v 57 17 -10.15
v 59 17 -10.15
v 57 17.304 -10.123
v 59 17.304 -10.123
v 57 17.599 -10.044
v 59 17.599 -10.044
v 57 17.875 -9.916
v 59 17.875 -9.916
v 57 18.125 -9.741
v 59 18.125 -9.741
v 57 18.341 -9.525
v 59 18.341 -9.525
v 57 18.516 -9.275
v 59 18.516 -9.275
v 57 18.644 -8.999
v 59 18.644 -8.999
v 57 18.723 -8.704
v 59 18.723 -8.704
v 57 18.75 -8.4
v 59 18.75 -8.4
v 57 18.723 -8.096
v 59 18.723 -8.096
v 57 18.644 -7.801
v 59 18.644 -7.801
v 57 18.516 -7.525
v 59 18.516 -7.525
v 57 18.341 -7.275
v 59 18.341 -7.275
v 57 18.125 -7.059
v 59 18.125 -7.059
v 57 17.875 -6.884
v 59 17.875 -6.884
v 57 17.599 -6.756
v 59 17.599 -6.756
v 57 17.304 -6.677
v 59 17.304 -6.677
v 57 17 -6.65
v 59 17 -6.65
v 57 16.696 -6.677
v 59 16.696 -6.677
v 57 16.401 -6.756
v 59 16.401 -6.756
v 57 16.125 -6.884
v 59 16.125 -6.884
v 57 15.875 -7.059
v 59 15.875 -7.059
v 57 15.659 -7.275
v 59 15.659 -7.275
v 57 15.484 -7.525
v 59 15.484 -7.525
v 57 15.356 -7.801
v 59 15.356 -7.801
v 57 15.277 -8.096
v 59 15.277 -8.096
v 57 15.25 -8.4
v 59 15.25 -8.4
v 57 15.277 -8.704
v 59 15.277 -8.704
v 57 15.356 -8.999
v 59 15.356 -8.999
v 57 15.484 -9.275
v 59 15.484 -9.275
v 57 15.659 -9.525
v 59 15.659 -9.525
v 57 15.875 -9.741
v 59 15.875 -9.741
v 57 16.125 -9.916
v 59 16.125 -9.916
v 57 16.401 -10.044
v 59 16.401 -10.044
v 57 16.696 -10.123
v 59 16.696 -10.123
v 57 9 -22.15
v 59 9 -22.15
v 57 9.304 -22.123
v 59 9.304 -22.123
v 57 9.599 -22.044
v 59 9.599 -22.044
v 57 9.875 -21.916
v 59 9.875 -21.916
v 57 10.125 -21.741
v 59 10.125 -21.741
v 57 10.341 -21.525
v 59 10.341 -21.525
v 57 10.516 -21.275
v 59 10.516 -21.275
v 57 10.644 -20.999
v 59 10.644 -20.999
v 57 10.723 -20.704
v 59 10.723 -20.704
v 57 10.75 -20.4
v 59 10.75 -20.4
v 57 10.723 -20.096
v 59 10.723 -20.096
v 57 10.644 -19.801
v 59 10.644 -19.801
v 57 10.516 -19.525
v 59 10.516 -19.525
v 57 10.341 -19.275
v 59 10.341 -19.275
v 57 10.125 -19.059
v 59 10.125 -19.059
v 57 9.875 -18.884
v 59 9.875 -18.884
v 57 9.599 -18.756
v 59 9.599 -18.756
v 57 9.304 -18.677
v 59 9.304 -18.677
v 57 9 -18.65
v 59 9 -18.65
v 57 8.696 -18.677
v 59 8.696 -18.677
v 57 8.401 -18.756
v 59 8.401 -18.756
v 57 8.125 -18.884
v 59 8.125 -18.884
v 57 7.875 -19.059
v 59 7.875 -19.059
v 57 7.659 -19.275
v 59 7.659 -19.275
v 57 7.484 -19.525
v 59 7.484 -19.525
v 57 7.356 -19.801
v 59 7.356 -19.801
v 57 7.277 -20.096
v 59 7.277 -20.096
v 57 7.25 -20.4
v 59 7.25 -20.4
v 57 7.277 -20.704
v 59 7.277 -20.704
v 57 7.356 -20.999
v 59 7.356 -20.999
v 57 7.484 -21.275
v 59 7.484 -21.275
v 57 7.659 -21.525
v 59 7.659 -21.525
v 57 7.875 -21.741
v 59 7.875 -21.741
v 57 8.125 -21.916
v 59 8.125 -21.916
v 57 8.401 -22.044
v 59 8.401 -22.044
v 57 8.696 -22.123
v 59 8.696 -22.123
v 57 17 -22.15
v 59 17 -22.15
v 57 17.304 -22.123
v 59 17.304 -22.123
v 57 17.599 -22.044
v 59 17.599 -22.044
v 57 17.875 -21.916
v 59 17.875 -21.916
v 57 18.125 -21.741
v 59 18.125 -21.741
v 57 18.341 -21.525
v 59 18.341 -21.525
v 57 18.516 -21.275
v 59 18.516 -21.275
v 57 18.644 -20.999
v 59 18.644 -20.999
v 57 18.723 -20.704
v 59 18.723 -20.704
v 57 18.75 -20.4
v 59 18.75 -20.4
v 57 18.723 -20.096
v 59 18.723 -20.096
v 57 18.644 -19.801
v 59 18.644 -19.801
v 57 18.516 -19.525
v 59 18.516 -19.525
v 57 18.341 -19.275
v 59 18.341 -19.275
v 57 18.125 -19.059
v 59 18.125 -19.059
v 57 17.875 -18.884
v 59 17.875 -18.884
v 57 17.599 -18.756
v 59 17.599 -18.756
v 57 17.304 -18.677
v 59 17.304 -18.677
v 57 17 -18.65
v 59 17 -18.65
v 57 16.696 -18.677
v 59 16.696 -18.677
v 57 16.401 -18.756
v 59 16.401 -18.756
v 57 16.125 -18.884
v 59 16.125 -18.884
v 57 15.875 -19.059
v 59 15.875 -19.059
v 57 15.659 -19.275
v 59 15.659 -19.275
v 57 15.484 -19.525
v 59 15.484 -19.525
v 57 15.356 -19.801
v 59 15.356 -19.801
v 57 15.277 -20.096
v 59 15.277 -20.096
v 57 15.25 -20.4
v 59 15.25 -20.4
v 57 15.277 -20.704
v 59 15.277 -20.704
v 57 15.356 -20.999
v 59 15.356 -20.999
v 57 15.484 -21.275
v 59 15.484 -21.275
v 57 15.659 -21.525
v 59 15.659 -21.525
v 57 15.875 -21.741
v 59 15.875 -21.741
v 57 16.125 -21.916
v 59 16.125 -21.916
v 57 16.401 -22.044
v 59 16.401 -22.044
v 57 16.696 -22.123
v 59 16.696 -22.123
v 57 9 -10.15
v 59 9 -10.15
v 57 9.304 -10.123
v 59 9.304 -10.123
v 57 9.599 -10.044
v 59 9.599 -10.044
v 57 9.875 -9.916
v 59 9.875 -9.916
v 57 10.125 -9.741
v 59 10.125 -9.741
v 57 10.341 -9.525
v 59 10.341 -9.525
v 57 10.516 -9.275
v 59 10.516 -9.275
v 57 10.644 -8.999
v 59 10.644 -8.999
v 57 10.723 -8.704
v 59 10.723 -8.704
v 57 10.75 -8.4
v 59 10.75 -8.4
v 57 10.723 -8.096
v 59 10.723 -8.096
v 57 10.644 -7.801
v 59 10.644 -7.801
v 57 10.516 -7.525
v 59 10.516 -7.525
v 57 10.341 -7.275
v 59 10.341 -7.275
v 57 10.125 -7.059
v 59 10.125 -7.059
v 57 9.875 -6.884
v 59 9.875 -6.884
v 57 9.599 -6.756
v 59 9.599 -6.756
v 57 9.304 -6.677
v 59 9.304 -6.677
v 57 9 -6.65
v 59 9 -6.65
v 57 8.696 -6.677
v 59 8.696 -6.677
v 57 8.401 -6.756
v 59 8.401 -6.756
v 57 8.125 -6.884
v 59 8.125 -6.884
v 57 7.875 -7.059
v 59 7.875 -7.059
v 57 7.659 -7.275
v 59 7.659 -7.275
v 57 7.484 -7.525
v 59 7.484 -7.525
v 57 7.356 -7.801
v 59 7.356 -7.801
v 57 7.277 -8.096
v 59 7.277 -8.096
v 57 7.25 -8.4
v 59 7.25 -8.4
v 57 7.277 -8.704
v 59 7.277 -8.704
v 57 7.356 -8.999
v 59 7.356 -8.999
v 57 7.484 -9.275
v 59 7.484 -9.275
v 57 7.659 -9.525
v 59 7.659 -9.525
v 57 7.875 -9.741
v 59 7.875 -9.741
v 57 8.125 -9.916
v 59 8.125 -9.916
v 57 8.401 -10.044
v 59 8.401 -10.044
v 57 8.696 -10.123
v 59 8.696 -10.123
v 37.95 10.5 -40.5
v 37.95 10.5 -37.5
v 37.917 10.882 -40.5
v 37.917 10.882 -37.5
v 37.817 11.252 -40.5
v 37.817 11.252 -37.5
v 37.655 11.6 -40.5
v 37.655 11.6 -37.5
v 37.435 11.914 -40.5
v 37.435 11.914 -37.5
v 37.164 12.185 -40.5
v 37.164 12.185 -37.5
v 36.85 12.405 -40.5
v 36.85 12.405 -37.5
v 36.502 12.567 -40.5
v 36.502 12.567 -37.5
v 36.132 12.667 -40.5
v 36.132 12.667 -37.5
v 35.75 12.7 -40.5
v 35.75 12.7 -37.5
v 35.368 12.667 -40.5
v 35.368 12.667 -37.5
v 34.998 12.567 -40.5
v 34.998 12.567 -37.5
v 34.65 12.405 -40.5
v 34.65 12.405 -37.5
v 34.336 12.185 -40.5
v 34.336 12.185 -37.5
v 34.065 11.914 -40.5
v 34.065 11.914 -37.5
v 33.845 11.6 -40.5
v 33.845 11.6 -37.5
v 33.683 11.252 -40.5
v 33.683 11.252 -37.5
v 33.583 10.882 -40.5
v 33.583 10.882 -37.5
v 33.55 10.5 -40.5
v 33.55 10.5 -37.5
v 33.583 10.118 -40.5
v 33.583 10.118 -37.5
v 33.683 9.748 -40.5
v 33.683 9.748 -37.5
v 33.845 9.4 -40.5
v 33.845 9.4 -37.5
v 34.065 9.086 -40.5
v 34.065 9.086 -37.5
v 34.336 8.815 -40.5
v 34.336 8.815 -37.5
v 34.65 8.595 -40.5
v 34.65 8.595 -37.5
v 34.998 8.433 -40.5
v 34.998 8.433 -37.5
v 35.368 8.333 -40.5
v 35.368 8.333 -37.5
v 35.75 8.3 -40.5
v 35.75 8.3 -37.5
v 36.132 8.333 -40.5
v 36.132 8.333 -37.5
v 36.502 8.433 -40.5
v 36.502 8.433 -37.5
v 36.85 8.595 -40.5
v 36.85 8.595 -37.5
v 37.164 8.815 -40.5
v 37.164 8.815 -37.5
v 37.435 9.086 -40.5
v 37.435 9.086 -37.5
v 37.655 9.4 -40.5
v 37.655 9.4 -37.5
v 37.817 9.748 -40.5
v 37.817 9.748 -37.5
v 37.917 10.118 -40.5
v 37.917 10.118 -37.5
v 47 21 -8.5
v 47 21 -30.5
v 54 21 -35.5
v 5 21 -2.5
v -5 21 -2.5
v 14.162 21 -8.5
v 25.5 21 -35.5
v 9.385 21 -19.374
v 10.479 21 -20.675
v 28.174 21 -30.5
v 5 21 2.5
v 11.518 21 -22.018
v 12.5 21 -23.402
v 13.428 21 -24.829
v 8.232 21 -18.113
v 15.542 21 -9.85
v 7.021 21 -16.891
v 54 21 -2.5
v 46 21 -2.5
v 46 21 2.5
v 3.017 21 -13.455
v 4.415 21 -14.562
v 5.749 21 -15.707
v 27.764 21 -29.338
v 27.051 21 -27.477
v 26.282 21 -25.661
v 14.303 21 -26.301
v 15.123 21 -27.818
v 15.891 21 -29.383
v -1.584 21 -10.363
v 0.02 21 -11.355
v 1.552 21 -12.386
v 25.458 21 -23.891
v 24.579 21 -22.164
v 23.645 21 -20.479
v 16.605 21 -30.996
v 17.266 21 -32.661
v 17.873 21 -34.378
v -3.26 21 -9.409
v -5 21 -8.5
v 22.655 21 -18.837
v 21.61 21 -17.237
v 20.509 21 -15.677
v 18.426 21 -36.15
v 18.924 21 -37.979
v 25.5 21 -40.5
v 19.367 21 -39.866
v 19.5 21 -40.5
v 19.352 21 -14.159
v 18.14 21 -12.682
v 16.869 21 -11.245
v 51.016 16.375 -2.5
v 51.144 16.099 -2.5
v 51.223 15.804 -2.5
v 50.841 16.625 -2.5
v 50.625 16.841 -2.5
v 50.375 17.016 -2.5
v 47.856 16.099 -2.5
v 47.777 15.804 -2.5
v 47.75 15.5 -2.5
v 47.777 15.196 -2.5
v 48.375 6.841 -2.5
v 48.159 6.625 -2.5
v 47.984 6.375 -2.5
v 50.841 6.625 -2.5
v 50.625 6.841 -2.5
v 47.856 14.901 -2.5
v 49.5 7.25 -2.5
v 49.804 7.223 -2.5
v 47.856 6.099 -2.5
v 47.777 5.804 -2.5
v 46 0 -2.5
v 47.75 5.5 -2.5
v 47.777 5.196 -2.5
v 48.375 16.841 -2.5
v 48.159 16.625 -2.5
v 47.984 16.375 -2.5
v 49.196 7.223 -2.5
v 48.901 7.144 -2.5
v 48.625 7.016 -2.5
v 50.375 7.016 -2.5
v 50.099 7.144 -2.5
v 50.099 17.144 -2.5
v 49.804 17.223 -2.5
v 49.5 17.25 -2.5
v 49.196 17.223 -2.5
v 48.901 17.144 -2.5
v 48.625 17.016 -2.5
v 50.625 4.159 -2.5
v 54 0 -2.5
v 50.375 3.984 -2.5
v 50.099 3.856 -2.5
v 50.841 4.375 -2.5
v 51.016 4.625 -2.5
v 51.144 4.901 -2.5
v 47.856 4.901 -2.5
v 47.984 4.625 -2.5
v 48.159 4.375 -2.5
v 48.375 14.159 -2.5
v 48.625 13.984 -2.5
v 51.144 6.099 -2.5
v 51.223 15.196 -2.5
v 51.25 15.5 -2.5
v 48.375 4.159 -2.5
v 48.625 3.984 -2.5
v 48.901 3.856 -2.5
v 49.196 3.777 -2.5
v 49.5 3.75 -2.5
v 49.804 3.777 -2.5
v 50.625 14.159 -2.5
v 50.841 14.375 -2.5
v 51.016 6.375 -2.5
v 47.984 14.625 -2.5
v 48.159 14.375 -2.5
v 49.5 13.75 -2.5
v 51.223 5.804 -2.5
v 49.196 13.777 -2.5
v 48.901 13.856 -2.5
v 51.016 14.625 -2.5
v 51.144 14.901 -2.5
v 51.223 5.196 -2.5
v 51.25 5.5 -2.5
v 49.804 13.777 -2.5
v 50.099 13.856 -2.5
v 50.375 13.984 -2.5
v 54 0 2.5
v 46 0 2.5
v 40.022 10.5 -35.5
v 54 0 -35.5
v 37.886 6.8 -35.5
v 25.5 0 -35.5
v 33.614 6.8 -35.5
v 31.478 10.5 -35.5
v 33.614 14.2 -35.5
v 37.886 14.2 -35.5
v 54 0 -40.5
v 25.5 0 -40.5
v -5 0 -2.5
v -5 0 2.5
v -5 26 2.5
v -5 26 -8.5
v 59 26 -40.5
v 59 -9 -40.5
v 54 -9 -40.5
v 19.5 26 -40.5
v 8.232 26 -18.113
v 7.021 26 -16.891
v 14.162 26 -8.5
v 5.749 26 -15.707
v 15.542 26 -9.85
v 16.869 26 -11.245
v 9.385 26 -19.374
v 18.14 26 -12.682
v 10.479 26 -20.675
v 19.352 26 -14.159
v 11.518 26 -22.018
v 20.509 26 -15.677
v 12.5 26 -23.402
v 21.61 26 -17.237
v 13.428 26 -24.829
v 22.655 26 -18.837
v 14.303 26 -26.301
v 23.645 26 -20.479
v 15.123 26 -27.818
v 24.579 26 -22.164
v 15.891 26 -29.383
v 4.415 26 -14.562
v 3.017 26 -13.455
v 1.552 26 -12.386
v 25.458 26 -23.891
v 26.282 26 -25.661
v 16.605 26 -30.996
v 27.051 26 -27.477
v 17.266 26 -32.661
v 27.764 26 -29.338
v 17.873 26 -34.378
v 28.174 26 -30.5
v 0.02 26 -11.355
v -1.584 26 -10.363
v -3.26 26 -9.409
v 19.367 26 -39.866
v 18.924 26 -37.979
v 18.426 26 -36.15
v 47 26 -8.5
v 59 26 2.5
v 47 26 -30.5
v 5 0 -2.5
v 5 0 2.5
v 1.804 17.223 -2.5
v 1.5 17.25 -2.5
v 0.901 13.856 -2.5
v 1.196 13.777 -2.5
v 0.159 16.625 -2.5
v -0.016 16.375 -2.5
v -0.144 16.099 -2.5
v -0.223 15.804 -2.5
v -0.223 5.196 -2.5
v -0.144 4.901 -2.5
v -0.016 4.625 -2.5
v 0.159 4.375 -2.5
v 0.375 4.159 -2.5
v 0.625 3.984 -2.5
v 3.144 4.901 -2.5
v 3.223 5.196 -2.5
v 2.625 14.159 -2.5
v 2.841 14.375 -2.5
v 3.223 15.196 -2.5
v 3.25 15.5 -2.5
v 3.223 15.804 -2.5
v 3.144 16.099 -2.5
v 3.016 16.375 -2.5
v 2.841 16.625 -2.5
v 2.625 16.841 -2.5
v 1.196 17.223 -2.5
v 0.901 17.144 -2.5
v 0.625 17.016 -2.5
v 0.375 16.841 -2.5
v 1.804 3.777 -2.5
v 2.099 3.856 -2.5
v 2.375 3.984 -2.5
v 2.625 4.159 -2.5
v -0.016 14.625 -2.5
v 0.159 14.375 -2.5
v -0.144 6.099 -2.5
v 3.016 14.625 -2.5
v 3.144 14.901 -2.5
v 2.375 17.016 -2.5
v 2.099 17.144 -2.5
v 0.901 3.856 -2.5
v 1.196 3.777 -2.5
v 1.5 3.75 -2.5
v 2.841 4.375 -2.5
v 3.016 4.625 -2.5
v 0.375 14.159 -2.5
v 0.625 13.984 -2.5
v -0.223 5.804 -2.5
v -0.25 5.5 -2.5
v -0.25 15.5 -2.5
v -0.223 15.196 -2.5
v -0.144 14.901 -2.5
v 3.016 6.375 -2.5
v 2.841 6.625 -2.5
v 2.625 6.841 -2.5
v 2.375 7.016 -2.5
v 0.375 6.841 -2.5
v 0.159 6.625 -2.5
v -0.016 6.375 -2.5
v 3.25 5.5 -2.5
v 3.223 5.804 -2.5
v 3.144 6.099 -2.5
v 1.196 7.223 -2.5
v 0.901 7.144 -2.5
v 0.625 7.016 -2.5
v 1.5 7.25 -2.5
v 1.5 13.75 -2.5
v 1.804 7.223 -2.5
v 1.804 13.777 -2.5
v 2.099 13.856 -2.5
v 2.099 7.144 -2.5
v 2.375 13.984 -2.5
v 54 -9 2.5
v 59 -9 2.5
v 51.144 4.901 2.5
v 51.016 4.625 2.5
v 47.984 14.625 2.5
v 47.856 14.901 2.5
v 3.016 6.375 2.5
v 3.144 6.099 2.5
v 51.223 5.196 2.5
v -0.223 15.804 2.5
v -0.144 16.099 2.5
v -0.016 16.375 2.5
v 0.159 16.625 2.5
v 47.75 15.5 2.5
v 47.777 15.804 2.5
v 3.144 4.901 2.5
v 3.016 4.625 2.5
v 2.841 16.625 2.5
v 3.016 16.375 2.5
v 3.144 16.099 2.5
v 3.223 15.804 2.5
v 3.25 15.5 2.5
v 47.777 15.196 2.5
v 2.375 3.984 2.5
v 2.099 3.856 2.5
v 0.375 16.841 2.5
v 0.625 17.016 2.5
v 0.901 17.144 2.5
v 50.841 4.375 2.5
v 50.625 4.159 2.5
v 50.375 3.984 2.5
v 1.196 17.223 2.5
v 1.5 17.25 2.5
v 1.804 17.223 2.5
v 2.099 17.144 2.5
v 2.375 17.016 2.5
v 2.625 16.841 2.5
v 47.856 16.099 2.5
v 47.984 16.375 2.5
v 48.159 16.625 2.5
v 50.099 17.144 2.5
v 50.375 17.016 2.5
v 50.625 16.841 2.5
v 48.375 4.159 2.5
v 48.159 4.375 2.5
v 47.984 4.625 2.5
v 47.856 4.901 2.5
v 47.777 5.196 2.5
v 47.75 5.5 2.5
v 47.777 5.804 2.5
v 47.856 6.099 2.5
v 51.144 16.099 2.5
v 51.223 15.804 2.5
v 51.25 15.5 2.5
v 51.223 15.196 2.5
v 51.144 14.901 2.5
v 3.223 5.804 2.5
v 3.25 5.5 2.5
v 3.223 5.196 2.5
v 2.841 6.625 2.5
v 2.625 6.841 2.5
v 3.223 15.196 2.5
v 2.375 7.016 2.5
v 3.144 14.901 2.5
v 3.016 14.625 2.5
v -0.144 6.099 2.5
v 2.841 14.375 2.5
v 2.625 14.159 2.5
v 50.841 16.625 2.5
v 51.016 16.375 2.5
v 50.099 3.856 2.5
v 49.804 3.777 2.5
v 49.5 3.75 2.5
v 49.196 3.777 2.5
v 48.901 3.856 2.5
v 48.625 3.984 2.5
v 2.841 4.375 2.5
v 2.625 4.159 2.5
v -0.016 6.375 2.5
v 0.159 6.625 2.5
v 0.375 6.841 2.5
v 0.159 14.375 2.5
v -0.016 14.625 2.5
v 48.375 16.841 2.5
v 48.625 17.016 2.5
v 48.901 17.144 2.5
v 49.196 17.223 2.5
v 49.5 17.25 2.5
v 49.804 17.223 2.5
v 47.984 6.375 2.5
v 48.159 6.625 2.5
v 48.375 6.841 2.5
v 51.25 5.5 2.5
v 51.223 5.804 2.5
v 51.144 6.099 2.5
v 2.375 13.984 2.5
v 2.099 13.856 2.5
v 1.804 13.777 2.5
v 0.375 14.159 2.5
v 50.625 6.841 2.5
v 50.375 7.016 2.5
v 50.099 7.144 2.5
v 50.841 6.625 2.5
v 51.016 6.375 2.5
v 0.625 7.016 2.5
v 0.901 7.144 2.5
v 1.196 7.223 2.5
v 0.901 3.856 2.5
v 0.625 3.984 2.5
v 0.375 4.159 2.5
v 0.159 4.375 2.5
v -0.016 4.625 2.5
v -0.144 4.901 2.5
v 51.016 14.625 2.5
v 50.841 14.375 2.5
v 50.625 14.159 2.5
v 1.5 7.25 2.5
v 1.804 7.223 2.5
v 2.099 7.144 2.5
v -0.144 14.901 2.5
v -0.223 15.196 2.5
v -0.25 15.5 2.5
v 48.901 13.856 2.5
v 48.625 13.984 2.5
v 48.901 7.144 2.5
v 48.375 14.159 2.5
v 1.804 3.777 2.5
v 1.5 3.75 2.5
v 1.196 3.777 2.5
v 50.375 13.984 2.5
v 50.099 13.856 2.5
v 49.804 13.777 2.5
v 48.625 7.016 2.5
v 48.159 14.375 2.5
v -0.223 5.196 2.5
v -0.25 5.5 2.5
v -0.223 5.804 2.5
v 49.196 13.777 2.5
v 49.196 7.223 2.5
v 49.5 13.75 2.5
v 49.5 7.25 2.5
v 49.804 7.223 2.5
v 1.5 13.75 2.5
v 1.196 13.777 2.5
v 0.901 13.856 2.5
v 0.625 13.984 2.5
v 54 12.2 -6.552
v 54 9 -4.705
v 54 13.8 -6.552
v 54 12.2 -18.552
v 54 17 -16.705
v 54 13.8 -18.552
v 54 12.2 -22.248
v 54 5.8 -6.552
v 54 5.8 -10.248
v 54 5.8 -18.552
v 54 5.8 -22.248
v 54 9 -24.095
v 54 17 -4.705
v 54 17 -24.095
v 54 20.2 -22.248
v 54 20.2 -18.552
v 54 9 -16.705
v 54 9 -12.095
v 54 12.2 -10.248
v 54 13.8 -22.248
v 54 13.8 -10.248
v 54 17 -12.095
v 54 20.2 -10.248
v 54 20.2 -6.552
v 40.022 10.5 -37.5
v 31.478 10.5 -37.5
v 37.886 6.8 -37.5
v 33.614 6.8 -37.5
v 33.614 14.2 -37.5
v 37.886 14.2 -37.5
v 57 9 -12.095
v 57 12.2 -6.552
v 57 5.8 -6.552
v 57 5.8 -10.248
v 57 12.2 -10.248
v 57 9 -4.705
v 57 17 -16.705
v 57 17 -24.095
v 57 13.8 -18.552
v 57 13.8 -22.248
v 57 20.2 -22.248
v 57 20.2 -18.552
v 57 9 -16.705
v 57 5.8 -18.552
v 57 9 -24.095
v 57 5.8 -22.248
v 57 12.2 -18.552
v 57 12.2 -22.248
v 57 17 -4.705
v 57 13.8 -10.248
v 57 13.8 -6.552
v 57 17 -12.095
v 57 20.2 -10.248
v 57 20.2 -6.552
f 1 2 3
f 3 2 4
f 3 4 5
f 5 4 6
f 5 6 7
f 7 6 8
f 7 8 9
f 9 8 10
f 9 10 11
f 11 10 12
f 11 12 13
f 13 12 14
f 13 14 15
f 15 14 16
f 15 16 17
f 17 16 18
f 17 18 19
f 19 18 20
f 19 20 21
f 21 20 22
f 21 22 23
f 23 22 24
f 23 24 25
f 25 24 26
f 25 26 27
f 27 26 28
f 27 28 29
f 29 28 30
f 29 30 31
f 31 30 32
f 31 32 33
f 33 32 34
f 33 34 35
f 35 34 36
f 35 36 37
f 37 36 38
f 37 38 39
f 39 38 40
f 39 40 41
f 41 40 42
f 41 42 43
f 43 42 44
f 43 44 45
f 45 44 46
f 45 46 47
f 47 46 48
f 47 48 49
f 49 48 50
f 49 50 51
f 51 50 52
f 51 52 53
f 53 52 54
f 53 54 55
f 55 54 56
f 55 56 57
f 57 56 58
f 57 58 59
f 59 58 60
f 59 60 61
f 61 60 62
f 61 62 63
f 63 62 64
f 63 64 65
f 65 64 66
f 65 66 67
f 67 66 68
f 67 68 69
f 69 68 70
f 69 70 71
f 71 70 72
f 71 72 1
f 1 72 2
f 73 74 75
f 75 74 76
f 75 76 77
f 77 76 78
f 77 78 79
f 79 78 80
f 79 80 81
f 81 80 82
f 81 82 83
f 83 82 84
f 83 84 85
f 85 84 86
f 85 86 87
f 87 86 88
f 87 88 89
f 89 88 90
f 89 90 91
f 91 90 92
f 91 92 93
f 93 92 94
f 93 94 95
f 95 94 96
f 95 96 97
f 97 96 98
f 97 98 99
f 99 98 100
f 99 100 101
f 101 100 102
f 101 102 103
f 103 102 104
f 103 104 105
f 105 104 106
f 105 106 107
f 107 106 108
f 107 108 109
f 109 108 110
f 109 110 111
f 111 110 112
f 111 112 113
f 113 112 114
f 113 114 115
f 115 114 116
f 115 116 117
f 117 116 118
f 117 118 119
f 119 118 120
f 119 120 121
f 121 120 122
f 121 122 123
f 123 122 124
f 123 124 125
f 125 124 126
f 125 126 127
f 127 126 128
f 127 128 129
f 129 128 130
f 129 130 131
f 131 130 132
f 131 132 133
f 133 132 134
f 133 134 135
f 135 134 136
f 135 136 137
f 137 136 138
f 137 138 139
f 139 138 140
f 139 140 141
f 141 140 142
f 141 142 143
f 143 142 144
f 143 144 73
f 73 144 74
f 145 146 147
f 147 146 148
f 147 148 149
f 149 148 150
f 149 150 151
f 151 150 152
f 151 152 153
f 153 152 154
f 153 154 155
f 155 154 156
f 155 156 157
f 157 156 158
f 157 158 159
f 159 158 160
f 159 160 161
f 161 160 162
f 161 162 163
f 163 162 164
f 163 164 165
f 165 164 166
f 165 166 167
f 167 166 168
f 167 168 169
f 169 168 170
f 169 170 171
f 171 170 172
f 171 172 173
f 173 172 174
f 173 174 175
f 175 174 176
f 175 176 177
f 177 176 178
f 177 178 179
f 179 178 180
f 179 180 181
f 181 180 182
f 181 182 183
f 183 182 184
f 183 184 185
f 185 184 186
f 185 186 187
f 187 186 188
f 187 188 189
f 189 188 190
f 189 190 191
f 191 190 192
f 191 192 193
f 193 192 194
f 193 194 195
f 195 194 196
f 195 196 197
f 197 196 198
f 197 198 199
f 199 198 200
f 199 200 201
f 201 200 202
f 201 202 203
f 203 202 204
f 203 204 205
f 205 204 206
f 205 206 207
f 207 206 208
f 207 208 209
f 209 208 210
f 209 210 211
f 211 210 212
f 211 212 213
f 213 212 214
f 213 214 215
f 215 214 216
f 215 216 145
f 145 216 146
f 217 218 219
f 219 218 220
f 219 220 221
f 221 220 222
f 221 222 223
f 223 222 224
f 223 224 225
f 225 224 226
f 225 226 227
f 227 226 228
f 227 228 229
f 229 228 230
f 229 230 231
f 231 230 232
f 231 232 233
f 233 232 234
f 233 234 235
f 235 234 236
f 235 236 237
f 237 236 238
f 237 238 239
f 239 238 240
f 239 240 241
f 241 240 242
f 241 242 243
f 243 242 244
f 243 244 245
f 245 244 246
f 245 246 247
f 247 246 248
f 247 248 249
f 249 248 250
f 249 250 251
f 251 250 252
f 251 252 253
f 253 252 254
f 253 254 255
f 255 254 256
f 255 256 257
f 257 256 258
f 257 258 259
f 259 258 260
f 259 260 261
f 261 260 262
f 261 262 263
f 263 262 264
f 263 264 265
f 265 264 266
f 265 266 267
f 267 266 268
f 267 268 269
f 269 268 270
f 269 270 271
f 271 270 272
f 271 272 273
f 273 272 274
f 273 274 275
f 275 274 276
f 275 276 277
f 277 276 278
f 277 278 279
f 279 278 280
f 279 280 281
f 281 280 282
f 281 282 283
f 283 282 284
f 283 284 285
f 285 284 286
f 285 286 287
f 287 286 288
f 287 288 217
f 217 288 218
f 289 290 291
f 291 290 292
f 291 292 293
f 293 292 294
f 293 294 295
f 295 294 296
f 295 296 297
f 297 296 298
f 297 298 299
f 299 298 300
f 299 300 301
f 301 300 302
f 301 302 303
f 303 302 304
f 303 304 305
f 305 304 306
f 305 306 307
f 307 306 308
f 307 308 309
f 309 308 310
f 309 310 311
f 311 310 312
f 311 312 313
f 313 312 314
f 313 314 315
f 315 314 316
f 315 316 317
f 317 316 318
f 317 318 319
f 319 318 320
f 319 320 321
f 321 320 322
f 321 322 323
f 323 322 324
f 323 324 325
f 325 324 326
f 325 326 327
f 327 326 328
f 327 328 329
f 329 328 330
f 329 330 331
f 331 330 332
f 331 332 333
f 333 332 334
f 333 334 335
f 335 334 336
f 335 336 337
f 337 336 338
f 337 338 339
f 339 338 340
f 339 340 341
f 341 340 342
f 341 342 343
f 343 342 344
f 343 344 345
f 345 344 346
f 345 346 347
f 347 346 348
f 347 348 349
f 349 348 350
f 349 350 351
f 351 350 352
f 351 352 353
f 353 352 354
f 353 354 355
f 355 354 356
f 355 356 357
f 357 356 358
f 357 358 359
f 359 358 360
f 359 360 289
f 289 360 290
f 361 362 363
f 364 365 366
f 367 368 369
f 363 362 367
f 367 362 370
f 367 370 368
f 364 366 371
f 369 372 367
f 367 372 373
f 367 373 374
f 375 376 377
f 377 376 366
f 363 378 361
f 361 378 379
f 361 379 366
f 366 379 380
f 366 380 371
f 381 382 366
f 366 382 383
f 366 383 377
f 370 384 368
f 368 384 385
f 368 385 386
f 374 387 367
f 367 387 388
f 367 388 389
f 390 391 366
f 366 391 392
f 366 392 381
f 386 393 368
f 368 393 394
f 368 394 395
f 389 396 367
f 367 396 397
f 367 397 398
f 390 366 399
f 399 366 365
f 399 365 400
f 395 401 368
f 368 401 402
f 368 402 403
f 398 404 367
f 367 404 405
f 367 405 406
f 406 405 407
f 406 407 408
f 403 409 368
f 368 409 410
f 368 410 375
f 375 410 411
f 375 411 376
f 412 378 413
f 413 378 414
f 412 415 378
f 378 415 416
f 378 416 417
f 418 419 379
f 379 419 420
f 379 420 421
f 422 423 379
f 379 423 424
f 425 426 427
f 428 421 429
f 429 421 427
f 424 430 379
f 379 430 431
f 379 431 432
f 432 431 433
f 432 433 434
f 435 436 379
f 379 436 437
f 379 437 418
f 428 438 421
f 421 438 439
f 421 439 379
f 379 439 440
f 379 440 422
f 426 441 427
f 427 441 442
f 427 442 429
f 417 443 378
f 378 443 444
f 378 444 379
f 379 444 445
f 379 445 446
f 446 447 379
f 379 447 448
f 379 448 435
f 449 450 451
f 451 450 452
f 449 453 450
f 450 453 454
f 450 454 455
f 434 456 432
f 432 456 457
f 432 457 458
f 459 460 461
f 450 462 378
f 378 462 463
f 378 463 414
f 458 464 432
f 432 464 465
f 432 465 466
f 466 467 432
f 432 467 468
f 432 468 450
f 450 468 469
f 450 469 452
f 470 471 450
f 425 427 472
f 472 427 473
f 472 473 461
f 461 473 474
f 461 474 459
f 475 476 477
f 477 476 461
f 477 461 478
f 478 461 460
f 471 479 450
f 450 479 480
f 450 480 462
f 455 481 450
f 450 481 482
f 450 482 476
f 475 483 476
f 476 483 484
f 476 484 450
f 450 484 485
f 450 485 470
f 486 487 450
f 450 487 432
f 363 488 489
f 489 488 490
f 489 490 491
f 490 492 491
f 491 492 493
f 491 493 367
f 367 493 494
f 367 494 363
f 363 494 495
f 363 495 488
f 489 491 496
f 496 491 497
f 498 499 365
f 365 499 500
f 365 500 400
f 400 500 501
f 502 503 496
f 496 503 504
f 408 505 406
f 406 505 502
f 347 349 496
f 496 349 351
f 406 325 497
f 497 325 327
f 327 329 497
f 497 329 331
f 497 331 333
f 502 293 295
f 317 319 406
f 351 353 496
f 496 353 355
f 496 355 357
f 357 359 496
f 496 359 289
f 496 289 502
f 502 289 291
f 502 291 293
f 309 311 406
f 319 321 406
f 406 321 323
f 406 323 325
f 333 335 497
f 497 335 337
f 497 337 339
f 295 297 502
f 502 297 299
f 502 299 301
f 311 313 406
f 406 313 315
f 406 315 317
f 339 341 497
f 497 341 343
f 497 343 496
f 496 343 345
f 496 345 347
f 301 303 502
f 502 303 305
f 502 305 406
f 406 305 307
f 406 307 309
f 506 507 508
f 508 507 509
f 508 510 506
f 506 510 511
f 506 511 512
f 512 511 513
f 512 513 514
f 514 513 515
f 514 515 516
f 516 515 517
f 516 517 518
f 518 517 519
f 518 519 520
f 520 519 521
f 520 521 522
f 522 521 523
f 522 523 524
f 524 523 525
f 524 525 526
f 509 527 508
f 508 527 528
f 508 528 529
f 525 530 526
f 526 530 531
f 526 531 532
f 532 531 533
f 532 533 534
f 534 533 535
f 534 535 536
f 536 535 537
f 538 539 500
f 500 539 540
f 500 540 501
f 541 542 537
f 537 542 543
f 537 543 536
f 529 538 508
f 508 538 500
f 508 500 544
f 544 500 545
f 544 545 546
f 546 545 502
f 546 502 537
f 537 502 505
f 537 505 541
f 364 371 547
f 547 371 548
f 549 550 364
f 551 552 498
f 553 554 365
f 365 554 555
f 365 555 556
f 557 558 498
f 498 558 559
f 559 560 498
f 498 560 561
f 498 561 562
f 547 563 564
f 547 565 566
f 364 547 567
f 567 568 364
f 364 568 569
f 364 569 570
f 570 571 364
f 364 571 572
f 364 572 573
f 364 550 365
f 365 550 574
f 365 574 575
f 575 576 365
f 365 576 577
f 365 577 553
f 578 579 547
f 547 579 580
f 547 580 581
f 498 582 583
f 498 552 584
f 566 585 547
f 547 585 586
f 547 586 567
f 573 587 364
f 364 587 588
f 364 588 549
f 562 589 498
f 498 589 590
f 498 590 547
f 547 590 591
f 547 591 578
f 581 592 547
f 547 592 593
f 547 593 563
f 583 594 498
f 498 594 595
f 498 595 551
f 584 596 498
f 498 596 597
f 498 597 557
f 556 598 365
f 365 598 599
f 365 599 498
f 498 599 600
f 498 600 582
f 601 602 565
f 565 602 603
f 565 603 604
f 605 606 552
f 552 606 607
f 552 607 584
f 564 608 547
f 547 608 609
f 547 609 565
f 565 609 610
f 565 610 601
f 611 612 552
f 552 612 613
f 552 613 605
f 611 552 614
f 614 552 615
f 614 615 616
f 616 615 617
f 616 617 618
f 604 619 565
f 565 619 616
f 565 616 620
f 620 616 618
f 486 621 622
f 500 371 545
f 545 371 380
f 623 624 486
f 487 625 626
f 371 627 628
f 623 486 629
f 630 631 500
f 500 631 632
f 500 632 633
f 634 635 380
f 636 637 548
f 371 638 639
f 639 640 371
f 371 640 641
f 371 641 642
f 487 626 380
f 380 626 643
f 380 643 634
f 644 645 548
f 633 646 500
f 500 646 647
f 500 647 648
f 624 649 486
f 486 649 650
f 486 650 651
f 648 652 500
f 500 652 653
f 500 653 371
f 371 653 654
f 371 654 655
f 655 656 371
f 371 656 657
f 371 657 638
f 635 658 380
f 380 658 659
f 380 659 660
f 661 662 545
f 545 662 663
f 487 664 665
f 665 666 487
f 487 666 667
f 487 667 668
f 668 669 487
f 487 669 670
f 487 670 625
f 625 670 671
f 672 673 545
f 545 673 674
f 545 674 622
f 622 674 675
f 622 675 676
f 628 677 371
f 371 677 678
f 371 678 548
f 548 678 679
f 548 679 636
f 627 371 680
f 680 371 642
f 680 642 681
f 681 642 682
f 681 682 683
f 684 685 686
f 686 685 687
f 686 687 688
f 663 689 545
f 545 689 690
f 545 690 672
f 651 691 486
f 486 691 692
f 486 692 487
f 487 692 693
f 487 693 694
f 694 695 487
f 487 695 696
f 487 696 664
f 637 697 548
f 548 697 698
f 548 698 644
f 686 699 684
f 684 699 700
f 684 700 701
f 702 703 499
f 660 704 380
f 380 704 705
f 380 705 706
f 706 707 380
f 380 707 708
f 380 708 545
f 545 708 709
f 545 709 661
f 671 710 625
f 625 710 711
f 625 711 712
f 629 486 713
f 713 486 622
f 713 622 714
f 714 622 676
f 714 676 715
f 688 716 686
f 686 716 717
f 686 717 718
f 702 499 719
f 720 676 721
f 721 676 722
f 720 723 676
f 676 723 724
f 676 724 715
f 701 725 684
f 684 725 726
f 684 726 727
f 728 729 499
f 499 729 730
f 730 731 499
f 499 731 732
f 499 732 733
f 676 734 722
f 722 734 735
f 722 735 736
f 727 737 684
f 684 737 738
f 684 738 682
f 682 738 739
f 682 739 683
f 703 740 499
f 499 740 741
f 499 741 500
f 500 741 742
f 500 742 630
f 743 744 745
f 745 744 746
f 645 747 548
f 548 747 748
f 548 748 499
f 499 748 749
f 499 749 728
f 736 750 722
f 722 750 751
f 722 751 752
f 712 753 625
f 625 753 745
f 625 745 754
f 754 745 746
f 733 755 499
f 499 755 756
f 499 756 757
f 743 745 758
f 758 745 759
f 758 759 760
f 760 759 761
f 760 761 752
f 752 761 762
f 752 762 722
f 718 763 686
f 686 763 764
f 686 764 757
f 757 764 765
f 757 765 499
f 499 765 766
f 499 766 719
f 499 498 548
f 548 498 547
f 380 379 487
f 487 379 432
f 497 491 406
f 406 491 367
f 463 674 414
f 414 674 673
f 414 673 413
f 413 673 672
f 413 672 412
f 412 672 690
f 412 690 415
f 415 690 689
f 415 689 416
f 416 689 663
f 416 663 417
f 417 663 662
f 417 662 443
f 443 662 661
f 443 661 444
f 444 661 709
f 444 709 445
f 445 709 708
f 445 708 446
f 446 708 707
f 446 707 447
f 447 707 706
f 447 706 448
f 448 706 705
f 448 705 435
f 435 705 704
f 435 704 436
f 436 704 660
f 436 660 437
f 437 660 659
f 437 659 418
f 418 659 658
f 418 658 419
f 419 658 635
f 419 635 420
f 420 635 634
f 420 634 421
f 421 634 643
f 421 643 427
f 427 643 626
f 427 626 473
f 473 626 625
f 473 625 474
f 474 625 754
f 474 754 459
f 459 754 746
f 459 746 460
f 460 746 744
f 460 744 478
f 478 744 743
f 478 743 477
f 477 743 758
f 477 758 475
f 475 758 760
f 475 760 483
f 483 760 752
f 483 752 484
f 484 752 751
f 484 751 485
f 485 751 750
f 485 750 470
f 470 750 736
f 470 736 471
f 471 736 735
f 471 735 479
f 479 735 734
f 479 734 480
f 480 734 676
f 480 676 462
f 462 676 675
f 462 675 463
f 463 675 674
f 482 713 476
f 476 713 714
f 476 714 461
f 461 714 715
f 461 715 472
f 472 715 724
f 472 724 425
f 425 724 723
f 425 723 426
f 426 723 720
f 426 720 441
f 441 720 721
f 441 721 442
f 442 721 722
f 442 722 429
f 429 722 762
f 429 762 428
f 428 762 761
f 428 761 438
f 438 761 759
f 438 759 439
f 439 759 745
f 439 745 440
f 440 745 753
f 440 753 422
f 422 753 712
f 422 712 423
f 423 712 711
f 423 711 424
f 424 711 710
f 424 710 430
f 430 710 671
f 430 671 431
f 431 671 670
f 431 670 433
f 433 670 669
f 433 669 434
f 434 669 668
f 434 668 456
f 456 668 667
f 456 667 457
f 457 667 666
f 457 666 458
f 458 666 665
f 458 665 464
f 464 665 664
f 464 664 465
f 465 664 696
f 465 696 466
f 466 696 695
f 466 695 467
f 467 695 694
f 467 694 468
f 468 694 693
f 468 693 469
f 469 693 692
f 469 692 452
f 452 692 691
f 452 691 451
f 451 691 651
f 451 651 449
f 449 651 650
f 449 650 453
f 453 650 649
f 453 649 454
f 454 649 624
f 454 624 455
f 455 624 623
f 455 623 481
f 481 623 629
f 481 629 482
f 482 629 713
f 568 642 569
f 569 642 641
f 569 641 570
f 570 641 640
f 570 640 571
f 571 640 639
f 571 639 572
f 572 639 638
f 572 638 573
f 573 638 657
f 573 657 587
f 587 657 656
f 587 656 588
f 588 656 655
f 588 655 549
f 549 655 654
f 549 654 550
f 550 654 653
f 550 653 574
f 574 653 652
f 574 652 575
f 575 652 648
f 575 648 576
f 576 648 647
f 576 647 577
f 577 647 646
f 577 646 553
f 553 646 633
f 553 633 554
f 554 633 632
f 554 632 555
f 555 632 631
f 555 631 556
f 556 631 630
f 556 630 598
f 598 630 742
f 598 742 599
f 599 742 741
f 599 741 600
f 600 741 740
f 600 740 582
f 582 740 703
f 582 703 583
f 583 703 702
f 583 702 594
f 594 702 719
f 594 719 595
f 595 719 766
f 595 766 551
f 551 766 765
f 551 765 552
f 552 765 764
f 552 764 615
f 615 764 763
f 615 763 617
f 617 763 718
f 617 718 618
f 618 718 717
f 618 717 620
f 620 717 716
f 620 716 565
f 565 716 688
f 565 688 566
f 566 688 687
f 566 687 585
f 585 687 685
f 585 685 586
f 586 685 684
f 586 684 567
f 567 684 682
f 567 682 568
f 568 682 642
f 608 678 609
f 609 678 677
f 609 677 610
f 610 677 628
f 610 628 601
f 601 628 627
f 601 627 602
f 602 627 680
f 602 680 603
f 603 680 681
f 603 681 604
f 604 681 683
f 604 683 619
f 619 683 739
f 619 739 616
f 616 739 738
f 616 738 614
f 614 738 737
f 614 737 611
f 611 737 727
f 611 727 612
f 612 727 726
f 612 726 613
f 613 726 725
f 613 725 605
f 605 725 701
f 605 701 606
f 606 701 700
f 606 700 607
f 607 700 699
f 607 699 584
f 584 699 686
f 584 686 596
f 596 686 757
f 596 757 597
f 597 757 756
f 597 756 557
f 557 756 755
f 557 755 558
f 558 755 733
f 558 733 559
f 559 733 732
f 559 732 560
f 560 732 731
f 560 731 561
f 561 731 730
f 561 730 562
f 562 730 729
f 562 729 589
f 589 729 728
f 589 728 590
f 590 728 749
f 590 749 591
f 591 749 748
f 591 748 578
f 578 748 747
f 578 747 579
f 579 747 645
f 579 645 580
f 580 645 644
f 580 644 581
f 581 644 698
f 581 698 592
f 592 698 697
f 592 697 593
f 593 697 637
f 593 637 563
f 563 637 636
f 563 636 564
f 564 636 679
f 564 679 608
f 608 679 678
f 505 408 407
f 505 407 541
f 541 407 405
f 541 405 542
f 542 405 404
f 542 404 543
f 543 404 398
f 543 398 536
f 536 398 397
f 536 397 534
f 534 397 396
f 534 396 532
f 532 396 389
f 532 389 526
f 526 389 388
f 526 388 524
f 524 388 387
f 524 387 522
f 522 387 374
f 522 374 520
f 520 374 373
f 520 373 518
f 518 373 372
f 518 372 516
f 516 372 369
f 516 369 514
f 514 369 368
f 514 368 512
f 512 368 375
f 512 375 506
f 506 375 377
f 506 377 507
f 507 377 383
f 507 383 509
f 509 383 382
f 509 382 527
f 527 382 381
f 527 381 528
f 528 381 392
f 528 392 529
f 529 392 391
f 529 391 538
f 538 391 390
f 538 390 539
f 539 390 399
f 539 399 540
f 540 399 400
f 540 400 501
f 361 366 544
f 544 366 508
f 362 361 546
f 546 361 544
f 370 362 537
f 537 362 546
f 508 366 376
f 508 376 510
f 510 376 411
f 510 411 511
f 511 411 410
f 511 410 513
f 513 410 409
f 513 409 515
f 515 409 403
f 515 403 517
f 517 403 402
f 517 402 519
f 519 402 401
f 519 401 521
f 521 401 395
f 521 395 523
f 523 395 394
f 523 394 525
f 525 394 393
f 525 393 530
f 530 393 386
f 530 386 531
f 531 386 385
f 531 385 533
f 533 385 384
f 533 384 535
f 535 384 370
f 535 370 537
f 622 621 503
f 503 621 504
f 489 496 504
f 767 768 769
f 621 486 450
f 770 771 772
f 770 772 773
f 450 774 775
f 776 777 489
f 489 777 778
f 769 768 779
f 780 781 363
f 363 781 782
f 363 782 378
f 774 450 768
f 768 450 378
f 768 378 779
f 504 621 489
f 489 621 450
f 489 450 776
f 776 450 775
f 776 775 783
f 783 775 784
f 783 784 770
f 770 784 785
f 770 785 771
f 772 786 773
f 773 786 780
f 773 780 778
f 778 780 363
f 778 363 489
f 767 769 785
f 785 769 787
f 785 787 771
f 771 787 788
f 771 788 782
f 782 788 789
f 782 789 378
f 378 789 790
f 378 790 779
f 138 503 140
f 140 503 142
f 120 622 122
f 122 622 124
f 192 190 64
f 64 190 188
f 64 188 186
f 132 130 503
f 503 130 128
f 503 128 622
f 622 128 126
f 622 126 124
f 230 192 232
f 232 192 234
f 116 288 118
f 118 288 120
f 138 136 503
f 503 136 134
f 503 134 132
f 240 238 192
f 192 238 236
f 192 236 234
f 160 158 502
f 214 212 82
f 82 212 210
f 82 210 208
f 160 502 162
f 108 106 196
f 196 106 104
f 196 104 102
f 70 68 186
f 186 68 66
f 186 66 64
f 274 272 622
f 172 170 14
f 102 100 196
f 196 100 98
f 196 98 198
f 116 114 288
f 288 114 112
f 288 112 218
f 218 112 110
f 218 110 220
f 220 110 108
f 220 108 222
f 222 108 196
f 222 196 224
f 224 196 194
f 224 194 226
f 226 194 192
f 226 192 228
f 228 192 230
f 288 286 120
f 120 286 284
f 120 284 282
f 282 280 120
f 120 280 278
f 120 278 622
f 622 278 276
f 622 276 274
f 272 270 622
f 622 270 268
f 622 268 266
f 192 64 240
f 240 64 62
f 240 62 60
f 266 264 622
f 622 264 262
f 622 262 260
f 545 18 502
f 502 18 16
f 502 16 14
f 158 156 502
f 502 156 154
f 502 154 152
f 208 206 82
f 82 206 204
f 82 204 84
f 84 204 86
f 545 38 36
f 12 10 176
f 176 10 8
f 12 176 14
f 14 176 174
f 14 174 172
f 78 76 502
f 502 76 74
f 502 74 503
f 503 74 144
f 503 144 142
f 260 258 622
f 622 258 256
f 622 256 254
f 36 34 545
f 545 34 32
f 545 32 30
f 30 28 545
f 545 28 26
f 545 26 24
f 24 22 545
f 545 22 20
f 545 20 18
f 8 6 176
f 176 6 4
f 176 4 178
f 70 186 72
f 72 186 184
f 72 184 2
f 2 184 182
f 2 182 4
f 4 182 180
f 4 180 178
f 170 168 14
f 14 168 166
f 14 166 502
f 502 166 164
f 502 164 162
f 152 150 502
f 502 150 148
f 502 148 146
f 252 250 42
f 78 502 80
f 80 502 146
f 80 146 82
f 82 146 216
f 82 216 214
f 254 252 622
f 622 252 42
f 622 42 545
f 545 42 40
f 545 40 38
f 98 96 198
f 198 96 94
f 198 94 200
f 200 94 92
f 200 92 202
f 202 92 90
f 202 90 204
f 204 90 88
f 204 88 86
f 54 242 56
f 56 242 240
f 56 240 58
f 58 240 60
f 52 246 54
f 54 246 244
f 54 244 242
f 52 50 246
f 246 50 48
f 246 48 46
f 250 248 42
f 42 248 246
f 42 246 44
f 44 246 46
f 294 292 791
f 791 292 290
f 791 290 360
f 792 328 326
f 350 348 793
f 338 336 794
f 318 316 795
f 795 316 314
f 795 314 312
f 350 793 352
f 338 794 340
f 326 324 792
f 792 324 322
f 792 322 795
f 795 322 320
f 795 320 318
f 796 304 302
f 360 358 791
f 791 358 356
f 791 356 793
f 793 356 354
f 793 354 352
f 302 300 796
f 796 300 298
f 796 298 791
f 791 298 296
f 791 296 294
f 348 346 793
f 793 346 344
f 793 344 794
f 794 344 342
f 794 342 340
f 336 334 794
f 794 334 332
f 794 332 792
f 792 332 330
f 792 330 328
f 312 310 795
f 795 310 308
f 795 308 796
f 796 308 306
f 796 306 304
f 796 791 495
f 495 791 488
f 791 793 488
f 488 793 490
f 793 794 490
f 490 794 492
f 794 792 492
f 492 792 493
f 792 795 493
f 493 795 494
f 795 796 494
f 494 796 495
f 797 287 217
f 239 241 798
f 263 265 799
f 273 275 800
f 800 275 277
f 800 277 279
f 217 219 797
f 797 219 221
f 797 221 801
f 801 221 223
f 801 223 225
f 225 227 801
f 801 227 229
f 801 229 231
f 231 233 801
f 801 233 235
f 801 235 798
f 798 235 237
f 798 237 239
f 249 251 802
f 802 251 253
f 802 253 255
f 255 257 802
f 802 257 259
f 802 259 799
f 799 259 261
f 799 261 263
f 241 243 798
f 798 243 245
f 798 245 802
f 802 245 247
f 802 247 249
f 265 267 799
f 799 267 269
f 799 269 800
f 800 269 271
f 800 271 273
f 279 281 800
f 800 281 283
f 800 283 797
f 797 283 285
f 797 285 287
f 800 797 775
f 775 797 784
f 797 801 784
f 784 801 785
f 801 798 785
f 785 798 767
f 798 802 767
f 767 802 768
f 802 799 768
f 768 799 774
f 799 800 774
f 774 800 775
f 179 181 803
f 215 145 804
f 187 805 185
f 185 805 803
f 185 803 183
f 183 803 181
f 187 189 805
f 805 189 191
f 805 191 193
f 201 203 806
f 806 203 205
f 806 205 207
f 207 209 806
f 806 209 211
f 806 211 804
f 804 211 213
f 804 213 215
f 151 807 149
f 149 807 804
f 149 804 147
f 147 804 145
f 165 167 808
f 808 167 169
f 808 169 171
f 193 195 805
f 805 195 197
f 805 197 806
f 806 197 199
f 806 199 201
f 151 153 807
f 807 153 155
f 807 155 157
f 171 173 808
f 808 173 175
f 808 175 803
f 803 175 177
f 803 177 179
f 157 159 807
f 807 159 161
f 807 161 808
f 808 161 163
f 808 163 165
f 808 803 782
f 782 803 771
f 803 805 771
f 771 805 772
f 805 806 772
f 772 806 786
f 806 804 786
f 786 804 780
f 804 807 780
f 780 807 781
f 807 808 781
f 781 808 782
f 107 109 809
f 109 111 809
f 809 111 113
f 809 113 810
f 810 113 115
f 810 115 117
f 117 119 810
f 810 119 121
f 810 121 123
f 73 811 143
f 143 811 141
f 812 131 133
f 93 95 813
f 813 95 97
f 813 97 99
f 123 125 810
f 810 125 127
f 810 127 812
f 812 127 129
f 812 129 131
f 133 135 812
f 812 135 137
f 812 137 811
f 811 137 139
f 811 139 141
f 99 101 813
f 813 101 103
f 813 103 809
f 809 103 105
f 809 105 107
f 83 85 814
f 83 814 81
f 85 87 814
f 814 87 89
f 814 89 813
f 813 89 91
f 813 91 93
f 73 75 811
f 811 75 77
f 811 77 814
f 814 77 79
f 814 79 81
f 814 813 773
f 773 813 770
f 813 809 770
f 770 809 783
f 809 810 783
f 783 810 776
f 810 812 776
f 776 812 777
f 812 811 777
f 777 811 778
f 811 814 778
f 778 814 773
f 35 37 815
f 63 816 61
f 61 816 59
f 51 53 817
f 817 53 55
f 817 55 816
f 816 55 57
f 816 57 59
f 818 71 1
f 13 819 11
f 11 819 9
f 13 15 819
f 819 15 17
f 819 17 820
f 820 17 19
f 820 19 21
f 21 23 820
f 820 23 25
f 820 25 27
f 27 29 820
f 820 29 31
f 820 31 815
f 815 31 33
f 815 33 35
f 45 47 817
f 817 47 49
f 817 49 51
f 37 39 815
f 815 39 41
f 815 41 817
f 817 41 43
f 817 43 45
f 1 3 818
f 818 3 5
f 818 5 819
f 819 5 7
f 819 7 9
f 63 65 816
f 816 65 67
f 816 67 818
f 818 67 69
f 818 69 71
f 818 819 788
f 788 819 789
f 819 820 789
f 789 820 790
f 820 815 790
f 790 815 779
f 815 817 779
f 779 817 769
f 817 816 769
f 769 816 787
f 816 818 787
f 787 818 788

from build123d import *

# Parameters (mm, degrees)
SKETCH1_W                = 10
SKETCH1_H                = 5
BOSS_EXTRUDE1_DEPTH      = 21
BOSS_EXTRUDE1_2_DEPTH    = 21
SKETCH2_W                = 61
SKETCH2_H                = 43
BOSS_EXTRUDE2_DEPTH      = 5
SKETCH3_W                = 30.5
SKETCH3_H                = 5
BOSS_EXTRUDE3_DEPTH      = 21
CUT_EXTRUDE1_REACH       = 74.498
SKETCH4_R                = 2.2
CUT_EXTRUDE2_REACH       = 77.24
SKETCH5_R                = 1.75
CUT_EXTRUDE4_REACH       = 74.231
BOSS_EXTRUDE4_DEPTH      = 3
BOSS_EXTRUDE4_DEPTH_BACK = 2
SKETCH10_W               = 43
SKETCH10_H               = 35
CUT_EXTRUDE5_DEPTH       = 2
CUT_EXTRUDE6_REACH       = 82.077
SKETCH12_R               = 1.75
CUT_EXTRUDE7_DEPTH       = 3


with BuildPart() as part:
    # Sketch1 → Boss-Extrude1 (new body)
    with BuildSketch(Plane(origin=(0, 0, 0), x_dir=(1, 0, 0), z_dir=(0, 1, 0))):
        Rectangle(SKETCH1_W, SKETCH1_H)
    extrude(amount=BOSS_EXTRUDE1_DEPTH)



with BuildPart() as body_2:
    # Sketch1 → Boss-Extrude1 2 (new body)
    with BuildSketch(Plane(origin=(0, 0, 0), x_dir=(1, 0, 0), z_dir=(0, 1, 0))):
        with Locations((51, 0)):
            Rectangle(SKETCH1_W, SKETCH1_H)
    extrude(amount=BOSS_EXTRUDE1_2_DEPTH)


with BuildPart() as part_1:
    add(part.part)

    add(body_2.part)  # Boss-Extrude2 merges body 2
    # Sketch2 → Boss-Extrude2 (add)
    with BuildSketch(Plane(origin=(0, 21, 0), x_dir=(1, 0, 0), z_dir=(0, 1, 0))):
        with Locations((25.5, 19)):
            Rectangle(SKETCH2_W, SKETCH2_H)
    extrude(amount=BOSS_EXTRUDE2_DEPTH)

    # Sketch3 → Boss-Extrude3 (add)
    with BuildSketch(Plane.XZ.offset(-21)):
        with Locations((40.75, -38)):
            Rectangle(SKETCH3_W, SKETCH3_H)
    extrude(amount=BOSS_EXTRUDE3_DEPTH)

    # Sketch4 → Cut-Extrude1 (cut, up to next)
    with BuildSketch(Plane.XY.offset(-35.5), mode=Mode.PRIVATE) as cut_extrude1_sk1:
        with Locations((35.75, 10.5)):
            Circle(SKETCH4_R)
    cut_extrude1_tool1 = extrude(cut_extrude1_sk1.sketch, amount=-CUT_EXTRUDE1_REACH, mode=Mode.PRIVATE) & part_1.part
    add(cut_extrude1_tool1.solids().sort_by_distance((35.75, 10.5, -35.5))[0], mode=Mode.SUBTRACT)

    # Sketch5 → Cut-Extrude2 (cut, up to next)
    with BuildSketch(Plane.XY.offset(2.5), mode=Mode.PRIVATE) as cut_extrude2_sk1:
        with Locations((1.5, 15.5)):
            Circle(SKETCH5_R)
    cut_extrude2_tool1 = extrude(cut_extrude2_sk1.sketch, amount=-CUT_EXTRUDE2_REACH, mode=Mode.PRIVATE) & part_1.part
    # Sketch5 → Cut-Extrude2 (cut, up to next)
    with BuildSketch(Plane.XY.offset(2.5), mode=Mode.PRIVATE) as cut_extrude2_sk2:
        with Locations((49.5, 15.5)):
            Circle(SKETCH5_R)
    cut_extrude2_tool2 = extrude(cut_extrude2_sk2.sketch, amount=-CUT_EXTRUDE2_REACH, mode=Mode.PRIVATE) & part_1.part
    # Sketch5 → Cut-Extrude2 (cut, up to next)
    with BuildSketch(Plane.XY.offset(2.5), mode=Mode.PRIVATE) as cut_extrude2_sk3:
        with Locations((49.5, 5.5)):
            Circle(SKETCH5_R)
    cut_extrude2_tool3 = extrude(cut_extrude2_sk3.sketch, amount=-CUT_EXTRUDE2_REACH, mode=Mode.PRIVATE) & part_1.part
    # Sketch5 → Cut-Extrude2 (cut, up to next)
    with BuildSketch(Plane.XY.offset(2.5), mode=Mode.PRIVATE) as cut_extrude2_sk4:
        with Locations((1.5, 5.5)):
            Circle(SKETCH5_R)
    cut_extrude2_tool4 = extrude(cut_extrude2_sk4.sketch, amount=-CUT_EXTRUDE2_REACH, mode=Mode.PRIVATE) & part_1.part
    add(cut_extrude2_tool1.solids().sort_by_distance((1.5, 15.5, 2.5))[0], mode=Mode.SUBTRACT)
    add(cut_extrude2_tool2.solids().sort_by_distance((49.5, 15.5, 2.5))[0], mode=Mode.SUBTRACT)
    add(cut_extrude2_tool3.solids().sort_by_distance((49.5, 5.5, 2.5))[0], mode=Mode.SUBTRACT)
    add(cut_extrude2_tool4.solids().sort_by_distance((1.5, 5.5, 2.5))[0], mode=Mode.SUBTRACT)

    # Sketch7 → Cut-Extrude4 (cut, up to next)
    with BuildSketch(Plane.XZ.offset(-21), mode=Mode.PRIVATE) as cut_extrude4_sk1:
        with BuildLine():
            add(Edge.make_bspline(
                [(-5, -8.5), (10.13734929, -16.069431505), (16.393117595, -30.5)],
                knots=[0, 0, 0, 0.756510063, 0.756510063, 0.756510063], degree=2))
            Line((-5, -8.5), (-5, -40.5))
            Line((-5, -40.5), (19.5, -40.5))
            add(Edge.make_bspline(
                [(16.393117595, -30.5), (18.406595945, -35.144615311), (19.5, -40.5)],
                knots=[0.756510063, 0.756510063, 0.756510063, 1, 1, 1], degree=2))
        make_face()
    cut_extrude4_tool1 = extrude(cut_extrude4_sk1.sketch, amount=-CUT_EXTRUDE4_REACH, mode=Mode.PRIVATE) & part_1.part
    # Sketch7 → Cut-Extrude4 (cut, up to next)
    with BuildSketch(Plane.XZ.offset(-21), mode=Mode.PRIVATE) as cut_extrude4_sk2:
        with BuildLine():
            add(Edge.make_bspline(
                [(14.162446419, -8.5), (14.308605592, -8.637915777), (15.764925912, -10.027572407), (18.374354372, -12.814680355), (21.64995854, -17.12958205), (24.471025142, -21.768825406), (26.433850498, -25.877231684), (27.590424444, -28.831311595), (28.037332794, -30.099095454), (28.173885888, -30.5)],
                knots=[0.333258572, 0.333258572, 0.333258572, 0.333258572, 0.345023116, 0.45114151, 0.557259903, 0.663378297, 0.769496691, 0.822555887, 0.846906812, 0.846906812, 0.846906812, 0.846906812], degree=3))
            Line((28.173885888, -30.5), (47, -30.5))
            Line((47, -30.5), (47, -8.5))
            Line((47, -8.5), (46, -8.5))
            Line((46, -8.5), (14.162446419, -8.5))
        make_face()
    cut_extrude4_tool2 = extrude(cut_extrude4_sk2.sketch, amount=-CUT_EXTRUDE4_REACH, mode=Mode.PRIVATE) & part_1.part
    add(cut_extrude4_tool1.solids().sort_by_distance((4.583978, 21, -28.190426))[0], mode=Mode.SUBTRACT)
    add(cut_extrude4_tool2.solids().sort_by_distance((34.394415, 21, -18.474006))[0], mode=Mode.SUBTRACT)

    # Sketch10 → Boss-Extrude4 (add, two sides: drawn at the far end of the back side and taken through both)
    with BuildSketch(Plane(origin=(56, 0, 0), x_dir=(0, 0, -1), z_dir=(1, 0, 0)).offset(-BOSS_EXTRUDE4_DEPTH_BACK)):
        with Locations((19, 8.5)):
            Rectangle(SKETCH10_W, SKETCH10_H)
    extrude(amount=BOSS_EXTRUDE4_DEPTH + BOSS_EXTRUDE4_DEPTH_BACK)

    # Sketch11 → Cut-Extrude5 (cut)
    with BuildSketch(Plane.XY.offset(-35.5)):
        Polygon((37.886195996, 14.2), (33.613804004, 14.2), (31.477608008, 10.5), (33.613804004, 6.8), (37.886195996, 6.8), (40.022391992, 10.5), align=None)
    extrude(amount=-CUT_EXTRUDE5_DEPTH, mode=Mode.SUBTRACT)

    # Sketch12 → Cut-Extrude6 (cut, up to next)
    with BuildSketch(Plane(origin=(59, 0, 0), x_dir=(0, 0, -1), z_dir=(1, 0, 0)), mode=Mode.PRIVATE) as cut_extrude6_sk1:
        with Locations((8.4, 17)):
            Circle(SKETCH12_R)
    cut_extrude6_tool1 = extrude(cut_extrude6_sk1.sketch, amount=-CUT_EXTRUDE6_REACH, mode=Mode.PRIVATE) & part_1.part
    # Sketch12 → Cut-Extrude6 (cut, up to next)
    with BuildSketch(Plane(origin=(59, 0, 0), x_dir=(0, 0, -1), z_dir=(1, 0, 0)), mode=Mode.PRIVATE) as cut_extrude6_sk2:
        with Locations((8.4, 9)):
            Circle(SKETCH12_R)
    cut_extrude6_tool2 = extrude(cut_extrude6_sk2.sketch, amount=-CUT_EXTRUDE6_REACH, mode=Mode.PRIVATE) & part_1.part
    # Sketch12 → Cut-Extrude6 (cut, up to next)
    with BuildSketch(Plane(origin=(59, 0, 0), x_dir=(0, 0, -1), z_dir=(1, 0, 0)), mode=Mode.PRIVATE) as cut_extrude6_sk3:
        with Locations((20.4, 17)):
            Circle(SKETCH12_R)
    cut_extrude6_tool3 = extrude(cut_extrude6_sk3.sketch, amount=-CUT_EXTRUDE6_REACH, mode=Mode.PRIVATE) & part_1.part
    # Sketch12 → Cut-Extrude6 (cut, up to next)
    with BuildSketch(Plane(origin=(59, 0, 0), x_dir=(0, 0, -1), z_dir=(1, 0, 0)), mode=Mode.PRIVATE) as cut_extrude6_sk4:
        with Locations((20.4, 9)):
            Circle(SKETCH12_R)
    cut_extrude6_tool4 = extrude(cut_extrude6_sk4.sketch, amount=-CUT_EXTRUDE6_REACH, mode=Mode.PRIVATE) & part_1.part
    add(cut_extrude6_tool1.solids().sort_by_distance((59, 17, -8.4))[0], mode=Mode.SUBTRACT)
    add(cut_extrude6_tool2.solids().sort_by_distance((59, 9, -8.4))[0], mode=Mode.SUBTRACT)
    add(cut_extrude6_tool3.solids().sort_by_distance((59, 17, -20.4))[0], mode=Mode.SUBTRACT)
    add(cut_extrude6_tool4.solids().sort_by_distance((59, 9, -20.4))[0], mode=Mode.SUBTRACT)

    # Sketch13 → Cut-Extrude7 (cut)
    with BuildSketch(Plane.ZY.offset(-54)):
        Polygon((-12.095041723, 17), (-10.247520861, 13.8), (-6.552479139, 13.8), (-4.704958277, 17), (-6.552479139, 20.2), (-10.247520861, 20.2), align=None)
        Polygon((-10.247520861, 5.8), (-6.552479139, 5.8), (-4.704958277, 9), (-6.552479139, 12.2), (-10.247520861, 12.2), (-12.095041723, 9), align=None)
        Polygon((-18.552479139, 20.2), (-22.247520861, 20.2), (-24.095041723, 17), (-22.247520861, 13.8), (-18.552479139, 13.8), (-16.704958277, 17), align=None)
        Polygon((-22.247520861, 12.2), (-24.095041723, 9), (-22.247520861, 5.8), (-18.552479139, 5.8), (-16.704958277, 9), (-18.552479139, 12.2), align=None)
    extrude(amount=-CUT_EXTRUDE7_DEPTH, mode=Mode.SUBTRACT)


solid = part_1.part
